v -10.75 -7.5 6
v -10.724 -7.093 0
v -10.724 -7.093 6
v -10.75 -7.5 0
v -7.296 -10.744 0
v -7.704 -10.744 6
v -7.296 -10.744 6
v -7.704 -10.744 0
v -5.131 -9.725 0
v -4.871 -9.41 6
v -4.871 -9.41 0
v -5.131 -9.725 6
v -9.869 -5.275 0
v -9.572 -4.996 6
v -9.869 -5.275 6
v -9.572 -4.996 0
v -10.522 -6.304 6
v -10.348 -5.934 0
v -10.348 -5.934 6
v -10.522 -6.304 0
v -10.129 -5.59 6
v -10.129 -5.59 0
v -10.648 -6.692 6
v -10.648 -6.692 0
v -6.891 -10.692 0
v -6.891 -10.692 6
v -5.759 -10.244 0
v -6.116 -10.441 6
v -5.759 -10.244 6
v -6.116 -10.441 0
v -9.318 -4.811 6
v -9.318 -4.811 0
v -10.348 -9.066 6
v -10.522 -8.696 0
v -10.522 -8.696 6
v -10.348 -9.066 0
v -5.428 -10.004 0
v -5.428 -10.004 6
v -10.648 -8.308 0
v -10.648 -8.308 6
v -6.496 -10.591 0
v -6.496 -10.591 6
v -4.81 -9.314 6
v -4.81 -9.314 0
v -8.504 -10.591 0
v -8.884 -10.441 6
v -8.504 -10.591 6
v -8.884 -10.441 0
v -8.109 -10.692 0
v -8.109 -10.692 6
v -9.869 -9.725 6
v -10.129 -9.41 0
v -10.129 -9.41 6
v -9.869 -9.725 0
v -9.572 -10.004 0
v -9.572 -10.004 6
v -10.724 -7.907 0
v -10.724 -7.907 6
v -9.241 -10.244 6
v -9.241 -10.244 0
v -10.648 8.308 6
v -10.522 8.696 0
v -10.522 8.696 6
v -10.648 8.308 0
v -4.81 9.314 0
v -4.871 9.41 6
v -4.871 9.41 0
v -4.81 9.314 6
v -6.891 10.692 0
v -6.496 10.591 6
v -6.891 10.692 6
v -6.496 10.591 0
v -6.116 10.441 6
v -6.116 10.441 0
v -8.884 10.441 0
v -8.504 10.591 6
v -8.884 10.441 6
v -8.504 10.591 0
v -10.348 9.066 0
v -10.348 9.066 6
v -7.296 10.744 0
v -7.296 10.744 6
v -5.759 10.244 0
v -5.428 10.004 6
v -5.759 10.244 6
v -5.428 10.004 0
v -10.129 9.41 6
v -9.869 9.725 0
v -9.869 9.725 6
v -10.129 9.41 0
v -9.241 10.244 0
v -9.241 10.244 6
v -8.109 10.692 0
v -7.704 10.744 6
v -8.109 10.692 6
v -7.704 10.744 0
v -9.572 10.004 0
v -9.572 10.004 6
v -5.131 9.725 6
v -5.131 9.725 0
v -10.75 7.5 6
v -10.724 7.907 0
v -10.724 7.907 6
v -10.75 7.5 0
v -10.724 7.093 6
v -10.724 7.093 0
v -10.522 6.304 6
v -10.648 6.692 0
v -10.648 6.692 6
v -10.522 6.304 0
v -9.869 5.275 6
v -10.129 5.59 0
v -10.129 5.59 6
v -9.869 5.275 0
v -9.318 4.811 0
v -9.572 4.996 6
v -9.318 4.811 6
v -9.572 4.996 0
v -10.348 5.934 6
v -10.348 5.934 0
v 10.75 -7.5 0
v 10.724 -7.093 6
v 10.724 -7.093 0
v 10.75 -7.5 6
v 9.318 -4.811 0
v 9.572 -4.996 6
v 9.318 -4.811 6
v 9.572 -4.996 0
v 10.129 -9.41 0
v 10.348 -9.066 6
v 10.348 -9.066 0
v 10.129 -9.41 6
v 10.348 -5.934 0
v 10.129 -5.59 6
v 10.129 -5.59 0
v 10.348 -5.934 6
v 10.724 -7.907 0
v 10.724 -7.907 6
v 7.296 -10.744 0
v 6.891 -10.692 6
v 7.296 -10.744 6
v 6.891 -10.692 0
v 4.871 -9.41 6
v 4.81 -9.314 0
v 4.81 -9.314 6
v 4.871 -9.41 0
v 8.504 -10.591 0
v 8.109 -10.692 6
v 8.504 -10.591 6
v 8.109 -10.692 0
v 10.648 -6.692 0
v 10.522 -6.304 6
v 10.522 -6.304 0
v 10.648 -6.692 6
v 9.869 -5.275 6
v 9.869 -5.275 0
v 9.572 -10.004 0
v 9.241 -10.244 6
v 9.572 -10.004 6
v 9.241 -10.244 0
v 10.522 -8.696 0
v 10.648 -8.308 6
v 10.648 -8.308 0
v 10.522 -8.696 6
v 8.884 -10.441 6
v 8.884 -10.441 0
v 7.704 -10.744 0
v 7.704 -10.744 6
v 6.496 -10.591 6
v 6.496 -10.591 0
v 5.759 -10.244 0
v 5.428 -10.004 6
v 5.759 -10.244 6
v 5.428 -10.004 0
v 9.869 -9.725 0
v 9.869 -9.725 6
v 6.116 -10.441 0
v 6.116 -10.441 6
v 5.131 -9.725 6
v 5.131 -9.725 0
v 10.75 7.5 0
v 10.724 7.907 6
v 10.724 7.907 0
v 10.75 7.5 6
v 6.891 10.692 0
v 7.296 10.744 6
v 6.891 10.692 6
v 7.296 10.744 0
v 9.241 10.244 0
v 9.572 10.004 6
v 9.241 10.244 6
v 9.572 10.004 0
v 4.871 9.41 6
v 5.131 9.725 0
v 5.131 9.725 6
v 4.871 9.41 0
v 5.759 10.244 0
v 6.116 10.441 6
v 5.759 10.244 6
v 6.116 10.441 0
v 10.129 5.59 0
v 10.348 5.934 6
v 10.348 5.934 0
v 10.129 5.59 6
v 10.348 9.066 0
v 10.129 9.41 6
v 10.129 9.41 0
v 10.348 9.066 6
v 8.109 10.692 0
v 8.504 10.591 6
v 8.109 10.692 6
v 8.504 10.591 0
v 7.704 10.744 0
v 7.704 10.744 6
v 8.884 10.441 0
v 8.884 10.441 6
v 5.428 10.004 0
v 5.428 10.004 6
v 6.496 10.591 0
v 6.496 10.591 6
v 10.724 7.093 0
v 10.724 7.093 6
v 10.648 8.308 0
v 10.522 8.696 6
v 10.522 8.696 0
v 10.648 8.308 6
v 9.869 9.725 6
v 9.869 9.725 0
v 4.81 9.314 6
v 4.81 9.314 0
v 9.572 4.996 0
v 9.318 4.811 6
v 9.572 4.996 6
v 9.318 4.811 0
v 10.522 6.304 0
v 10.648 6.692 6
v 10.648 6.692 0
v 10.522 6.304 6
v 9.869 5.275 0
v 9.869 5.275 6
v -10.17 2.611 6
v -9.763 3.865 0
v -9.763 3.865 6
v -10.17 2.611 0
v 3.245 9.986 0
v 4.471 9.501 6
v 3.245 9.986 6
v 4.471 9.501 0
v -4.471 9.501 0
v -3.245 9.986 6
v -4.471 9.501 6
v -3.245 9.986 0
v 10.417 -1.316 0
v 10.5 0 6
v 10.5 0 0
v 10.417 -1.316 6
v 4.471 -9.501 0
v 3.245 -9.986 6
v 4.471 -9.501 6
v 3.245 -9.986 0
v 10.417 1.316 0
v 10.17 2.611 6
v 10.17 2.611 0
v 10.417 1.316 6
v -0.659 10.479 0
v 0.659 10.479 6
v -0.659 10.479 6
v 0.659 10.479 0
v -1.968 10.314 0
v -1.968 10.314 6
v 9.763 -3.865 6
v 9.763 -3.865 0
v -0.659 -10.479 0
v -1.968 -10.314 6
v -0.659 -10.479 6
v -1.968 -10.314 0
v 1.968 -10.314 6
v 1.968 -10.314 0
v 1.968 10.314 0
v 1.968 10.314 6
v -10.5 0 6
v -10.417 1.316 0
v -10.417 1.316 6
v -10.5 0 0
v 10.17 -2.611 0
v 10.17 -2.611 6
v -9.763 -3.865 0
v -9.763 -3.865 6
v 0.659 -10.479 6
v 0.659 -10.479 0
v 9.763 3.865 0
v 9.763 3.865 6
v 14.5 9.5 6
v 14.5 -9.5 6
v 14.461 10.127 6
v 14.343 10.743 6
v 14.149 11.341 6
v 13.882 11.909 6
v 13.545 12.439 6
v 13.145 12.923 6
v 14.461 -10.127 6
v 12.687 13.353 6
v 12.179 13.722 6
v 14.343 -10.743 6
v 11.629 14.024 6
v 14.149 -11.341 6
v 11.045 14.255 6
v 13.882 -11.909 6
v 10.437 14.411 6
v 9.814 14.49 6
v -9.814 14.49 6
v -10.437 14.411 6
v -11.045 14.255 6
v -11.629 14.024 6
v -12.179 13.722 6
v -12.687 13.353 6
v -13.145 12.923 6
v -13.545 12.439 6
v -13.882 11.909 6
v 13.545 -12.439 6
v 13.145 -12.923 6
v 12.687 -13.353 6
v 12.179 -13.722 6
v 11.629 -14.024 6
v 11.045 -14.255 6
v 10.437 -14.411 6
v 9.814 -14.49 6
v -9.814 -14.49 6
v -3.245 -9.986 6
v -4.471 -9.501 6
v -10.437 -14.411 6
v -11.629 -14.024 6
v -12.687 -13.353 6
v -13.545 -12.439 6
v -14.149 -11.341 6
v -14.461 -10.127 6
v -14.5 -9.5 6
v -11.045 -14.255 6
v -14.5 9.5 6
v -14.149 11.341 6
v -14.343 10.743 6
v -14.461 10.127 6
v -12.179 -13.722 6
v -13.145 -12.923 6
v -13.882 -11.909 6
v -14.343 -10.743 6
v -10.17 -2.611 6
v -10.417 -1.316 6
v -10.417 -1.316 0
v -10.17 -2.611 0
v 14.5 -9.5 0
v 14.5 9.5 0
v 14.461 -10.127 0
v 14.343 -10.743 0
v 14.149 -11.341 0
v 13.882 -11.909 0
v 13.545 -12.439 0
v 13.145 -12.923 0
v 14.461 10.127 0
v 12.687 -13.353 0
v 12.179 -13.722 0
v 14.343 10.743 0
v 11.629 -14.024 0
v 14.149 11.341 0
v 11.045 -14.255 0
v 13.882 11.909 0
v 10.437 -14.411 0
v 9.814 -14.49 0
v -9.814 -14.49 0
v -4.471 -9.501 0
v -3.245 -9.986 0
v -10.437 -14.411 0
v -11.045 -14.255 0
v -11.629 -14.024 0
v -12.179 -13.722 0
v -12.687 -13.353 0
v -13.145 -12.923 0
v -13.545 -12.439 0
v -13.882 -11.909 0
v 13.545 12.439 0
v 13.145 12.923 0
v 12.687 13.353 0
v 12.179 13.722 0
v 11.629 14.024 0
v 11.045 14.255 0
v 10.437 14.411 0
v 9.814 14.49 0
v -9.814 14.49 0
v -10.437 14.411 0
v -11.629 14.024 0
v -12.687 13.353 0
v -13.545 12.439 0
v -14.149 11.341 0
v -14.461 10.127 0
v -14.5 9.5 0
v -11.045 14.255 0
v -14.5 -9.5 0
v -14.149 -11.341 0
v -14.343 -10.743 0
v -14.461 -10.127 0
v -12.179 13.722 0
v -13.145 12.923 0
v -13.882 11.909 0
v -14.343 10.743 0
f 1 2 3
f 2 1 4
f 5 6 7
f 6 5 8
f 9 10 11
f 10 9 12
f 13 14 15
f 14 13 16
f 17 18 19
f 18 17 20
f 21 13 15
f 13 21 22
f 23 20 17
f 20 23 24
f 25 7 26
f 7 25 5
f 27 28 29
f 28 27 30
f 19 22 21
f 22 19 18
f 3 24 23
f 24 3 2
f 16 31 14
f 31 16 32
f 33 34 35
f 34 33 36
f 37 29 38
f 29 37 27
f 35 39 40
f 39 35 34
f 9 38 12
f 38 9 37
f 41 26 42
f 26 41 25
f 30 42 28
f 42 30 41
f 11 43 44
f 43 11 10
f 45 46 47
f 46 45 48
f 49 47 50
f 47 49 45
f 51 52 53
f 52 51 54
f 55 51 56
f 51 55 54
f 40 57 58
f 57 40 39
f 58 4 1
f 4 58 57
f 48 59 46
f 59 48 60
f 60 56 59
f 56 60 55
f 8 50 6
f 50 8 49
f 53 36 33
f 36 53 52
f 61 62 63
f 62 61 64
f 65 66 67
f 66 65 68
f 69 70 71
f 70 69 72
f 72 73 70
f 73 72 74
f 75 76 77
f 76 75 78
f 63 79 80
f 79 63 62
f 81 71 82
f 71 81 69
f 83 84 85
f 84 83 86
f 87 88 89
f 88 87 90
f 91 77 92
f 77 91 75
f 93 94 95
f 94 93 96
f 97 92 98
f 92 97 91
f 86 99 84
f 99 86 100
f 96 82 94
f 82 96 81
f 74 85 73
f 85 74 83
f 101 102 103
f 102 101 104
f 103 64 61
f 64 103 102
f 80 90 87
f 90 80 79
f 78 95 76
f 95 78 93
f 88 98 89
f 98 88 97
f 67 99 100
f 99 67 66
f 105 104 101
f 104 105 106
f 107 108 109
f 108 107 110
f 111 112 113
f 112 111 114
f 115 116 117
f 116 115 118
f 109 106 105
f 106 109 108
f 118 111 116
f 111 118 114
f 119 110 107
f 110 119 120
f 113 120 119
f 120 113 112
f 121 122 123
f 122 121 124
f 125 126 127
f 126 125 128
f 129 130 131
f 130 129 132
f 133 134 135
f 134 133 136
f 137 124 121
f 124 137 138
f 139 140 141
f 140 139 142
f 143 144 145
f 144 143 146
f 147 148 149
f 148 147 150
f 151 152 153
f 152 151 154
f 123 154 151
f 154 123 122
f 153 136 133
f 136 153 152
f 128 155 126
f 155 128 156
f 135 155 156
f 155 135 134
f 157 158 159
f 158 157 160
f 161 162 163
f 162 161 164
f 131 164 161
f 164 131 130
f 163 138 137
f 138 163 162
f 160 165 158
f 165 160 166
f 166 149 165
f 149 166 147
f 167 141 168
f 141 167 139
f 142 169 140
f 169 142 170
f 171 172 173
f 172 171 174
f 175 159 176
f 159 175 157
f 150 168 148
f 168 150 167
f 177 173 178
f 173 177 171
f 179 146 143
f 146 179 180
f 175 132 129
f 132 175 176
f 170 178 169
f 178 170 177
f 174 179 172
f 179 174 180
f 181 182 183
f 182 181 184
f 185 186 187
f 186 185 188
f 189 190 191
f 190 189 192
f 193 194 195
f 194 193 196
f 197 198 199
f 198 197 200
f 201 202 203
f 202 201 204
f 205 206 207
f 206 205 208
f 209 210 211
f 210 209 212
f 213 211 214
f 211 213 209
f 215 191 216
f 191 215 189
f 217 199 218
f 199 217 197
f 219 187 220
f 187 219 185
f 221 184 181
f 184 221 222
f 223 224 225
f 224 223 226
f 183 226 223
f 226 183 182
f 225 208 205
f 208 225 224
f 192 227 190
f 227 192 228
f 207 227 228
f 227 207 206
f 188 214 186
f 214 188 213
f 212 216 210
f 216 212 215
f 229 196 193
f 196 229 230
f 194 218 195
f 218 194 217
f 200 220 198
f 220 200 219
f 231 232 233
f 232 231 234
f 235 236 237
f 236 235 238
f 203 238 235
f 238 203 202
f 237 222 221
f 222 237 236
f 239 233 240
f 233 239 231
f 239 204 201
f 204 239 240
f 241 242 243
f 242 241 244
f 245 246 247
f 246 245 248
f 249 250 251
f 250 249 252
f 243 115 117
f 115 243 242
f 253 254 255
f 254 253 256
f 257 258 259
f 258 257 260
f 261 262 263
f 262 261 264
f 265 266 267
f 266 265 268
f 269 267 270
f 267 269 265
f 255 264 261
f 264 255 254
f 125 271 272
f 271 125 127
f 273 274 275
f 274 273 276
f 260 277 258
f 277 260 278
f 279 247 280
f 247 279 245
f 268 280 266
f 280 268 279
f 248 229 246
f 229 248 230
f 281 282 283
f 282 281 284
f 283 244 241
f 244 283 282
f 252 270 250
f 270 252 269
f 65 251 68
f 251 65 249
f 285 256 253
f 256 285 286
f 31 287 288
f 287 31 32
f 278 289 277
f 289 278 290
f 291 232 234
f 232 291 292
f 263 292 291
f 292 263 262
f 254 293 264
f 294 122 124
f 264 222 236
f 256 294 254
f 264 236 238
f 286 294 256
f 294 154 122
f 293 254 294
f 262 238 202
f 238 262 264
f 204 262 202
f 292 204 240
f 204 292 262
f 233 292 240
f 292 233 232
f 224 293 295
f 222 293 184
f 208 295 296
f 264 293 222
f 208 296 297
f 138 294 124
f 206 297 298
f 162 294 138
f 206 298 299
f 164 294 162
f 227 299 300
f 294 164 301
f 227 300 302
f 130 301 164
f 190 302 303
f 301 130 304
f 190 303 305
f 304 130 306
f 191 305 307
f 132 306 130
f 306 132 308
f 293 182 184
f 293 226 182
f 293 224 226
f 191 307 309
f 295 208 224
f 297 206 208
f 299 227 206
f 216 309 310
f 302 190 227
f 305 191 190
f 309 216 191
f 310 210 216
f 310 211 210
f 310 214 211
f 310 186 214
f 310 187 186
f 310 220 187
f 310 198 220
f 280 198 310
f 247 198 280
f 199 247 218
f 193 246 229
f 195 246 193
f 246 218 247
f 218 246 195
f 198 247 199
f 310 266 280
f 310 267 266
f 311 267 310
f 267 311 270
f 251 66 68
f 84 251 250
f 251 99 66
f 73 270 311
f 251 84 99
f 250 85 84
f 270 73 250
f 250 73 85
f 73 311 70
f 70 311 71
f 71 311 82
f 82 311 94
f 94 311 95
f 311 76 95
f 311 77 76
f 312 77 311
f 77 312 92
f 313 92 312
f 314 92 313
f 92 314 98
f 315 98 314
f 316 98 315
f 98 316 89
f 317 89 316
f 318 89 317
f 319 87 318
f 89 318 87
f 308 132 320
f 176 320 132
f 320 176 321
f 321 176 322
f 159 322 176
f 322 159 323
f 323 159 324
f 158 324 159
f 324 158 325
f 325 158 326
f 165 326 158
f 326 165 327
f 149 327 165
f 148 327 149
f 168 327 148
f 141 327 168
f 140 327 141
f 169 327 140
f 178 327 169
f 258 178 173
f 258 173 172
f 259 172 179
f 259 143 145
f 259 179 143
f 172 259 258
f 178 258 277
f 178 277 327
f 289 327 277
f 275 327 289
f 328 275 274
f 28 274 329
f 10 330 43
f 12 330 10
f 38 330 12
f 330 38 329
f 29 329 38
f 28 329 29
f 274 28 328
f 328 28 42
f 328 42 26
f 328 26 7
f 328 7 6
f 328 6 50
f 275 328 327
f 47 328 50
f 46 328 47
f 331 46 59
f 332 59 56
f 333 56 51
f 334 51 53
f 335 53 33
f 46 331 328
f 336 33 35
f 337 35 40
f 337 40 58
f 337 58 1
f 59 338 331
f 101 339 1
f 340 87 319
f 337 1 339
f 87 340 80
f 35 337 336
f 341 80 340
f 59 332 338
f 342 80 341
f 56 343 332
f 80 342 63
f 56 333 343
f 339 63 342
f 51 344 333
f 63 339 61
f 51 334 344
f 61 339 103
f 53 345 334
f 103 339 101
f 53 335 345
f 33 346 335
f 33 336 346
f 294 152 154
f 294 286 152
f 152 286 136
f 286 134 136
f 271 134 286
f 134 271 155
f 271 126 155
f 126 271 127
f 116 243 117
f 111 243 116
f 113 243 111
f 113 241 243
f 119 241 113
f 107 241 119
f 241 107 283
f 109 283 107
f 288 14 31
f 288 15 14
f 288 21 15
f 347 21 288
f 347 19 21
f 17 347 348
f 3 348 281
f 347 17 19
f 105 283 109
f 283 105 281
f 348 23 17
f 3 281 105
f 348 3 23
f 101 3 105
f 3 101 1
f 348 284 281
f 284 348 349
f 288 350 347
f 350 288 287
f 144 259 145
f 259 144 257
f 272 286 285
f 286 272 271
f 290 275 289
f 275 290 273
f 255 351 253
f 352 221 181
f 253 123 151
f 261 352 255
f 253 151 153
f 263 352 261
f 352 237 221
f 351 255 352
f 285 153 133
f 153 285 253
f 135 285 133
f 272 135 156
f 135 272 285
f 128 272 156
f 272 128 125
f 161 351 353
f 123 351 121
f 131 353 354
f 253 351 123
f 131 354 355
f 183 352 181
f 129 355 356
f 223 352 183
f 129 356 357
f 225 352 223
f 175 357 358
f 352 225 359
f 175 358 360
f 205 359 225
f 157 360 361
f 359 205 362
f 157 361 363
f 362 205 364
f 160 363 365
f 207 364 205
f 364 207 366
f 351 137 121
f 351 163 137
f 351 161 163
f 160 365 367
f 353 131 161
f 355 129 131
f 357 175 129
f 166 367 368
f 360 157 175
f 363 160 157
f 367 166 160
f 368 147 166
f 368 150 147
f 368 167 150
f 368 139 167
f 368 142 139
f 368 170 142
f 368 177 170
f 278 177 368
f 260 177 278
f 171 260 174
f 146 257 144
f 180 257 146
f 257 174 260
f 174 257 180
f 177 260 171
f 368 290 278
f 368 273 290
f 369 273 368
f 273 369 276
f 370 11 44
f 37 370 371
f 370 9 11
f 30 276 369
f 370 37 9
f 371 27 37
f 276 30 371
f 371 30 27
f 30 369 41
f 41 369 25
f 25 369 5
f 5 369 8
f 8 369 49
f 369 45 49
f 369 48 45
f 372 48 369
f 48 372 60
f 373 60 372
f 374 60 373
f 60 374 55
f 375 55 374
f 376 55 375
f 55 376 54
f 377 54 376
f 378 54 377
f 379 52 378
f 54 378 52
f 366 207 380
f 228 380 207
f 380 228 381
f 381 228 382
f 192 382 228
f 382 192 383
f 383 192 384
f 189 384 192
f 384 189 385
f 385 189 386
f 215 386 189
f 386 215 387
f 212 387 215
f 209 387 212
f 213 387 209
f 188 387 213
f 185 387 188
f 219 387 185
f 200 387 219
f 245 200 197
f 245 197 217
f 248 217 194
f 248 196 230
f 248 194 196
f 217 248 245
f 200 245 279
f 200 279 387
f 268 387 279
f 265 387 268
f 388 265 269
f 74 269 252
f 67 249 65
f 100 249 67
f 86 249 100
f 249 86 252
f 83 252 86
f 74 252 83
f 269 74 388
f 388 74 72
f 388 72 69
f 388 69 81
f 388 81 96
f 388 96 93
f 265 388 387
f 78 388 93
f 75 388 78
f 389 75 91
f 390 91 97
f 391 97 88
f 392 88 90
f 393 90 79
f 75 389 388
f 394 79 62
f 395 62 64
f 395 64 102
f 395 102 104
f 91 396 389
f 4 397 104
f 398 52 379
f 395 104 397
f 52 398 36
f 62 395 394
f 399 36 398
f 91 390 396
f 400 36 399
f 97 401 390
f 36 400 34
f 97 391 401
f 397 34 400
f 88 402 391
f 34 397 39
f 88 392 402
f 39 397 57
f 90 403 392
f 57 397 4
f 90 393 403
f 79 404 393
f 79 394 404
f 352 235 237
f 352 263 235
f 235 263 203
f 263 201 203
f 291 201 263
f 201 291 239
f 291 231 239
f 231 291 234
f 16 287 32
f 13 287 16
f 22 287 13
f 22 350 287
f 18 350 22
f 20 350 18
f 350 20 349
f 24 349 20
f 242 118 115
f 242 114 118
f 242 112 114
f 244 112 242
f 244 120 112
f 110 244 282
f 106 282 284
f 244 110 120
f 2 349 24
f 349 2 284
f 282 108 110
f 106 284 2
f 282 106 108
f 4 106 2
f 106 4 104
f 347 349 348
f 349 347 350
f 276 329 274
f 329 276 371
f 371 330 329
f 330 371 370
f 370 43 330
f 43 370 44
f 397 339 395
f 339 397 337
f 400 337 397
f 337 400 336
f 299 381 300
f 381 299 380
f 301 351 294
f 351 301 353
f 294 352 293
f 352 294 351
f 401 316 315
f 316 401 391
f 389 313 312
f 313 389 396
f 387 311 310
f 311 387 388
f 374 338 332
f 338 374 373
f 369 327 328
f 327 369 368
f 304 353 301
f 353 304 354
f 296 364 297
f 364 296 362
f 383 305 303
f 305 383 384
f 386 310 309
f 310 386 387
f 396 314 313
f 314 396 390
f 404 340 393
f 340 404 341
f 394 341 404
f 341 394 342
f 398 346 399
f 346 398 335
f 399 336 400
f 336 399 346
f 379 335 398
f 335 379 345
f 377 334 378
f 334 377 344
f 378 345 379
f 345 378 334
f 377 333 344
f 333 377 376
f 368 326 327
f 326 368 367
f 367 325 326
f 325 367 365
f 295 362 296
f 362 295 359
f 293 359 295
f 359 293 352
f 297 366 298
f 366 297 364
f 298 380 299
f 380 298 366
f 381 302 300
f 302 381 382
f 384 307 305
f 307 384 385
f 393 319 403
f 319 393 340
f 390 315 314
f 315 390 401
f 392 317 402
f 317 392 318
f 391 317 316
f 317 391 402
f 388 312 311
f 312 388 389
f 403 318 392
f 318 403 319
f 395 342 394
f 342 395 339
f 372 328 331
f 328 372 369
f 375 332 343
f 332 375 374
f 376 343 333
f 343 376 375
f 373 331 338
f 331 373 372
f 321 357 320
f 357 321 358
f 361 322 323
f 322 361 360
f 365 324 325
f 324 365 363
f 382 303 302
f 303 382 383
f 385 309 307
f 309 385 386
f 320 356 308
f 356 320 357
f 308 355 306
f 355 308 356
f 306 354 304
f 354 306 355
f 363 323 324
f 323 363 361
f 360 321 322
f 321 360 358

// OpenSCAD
$fn = 50;


difference() {
	union() {
		hull() {
			translate(v = [-9.5000000000, 9.5000000000, 0]) {
				cylinder(h = 6, r = 5);
			}
			translate(v = [9.5000000000, 9.5000000000, 0]) {
				cylinder(h = 6, r = 5);
			}
			translate(v = [-9.5000000000, -9.5000000000, 0]) {
				cylinder(h = 6, r = 5);
			}
			translate(v = [9.5000000000, -9.5000000000, 0]) {
				cylinder(h = 6, r = 5);
			}
		}
	}
	union() {
		#translate(v = [-7.5000000000, -7.5000000000, -100.0000000000]) {
			cylinder(h = 200, r = 3.2500000000);
		}
		#translate(v = [-7.5000000000, 7.5000000000, -100.0000000000]) {
			cylinder(h = 200, r = 3.2500000000);
		}
		#translate(v = [7.5000000000, -7.5000000000, -100.0000000000]) {
			cylinder(h = 200, r = 3.2500000000);
		}
		#translate(v = [7.5000000000, 7.5000000000, -100.0000000000]) {
			cylinder(h = 200, r = 3.2500000000);
		}
		#cylinder(h = 6, r = 10.5000000000);
	}
}
